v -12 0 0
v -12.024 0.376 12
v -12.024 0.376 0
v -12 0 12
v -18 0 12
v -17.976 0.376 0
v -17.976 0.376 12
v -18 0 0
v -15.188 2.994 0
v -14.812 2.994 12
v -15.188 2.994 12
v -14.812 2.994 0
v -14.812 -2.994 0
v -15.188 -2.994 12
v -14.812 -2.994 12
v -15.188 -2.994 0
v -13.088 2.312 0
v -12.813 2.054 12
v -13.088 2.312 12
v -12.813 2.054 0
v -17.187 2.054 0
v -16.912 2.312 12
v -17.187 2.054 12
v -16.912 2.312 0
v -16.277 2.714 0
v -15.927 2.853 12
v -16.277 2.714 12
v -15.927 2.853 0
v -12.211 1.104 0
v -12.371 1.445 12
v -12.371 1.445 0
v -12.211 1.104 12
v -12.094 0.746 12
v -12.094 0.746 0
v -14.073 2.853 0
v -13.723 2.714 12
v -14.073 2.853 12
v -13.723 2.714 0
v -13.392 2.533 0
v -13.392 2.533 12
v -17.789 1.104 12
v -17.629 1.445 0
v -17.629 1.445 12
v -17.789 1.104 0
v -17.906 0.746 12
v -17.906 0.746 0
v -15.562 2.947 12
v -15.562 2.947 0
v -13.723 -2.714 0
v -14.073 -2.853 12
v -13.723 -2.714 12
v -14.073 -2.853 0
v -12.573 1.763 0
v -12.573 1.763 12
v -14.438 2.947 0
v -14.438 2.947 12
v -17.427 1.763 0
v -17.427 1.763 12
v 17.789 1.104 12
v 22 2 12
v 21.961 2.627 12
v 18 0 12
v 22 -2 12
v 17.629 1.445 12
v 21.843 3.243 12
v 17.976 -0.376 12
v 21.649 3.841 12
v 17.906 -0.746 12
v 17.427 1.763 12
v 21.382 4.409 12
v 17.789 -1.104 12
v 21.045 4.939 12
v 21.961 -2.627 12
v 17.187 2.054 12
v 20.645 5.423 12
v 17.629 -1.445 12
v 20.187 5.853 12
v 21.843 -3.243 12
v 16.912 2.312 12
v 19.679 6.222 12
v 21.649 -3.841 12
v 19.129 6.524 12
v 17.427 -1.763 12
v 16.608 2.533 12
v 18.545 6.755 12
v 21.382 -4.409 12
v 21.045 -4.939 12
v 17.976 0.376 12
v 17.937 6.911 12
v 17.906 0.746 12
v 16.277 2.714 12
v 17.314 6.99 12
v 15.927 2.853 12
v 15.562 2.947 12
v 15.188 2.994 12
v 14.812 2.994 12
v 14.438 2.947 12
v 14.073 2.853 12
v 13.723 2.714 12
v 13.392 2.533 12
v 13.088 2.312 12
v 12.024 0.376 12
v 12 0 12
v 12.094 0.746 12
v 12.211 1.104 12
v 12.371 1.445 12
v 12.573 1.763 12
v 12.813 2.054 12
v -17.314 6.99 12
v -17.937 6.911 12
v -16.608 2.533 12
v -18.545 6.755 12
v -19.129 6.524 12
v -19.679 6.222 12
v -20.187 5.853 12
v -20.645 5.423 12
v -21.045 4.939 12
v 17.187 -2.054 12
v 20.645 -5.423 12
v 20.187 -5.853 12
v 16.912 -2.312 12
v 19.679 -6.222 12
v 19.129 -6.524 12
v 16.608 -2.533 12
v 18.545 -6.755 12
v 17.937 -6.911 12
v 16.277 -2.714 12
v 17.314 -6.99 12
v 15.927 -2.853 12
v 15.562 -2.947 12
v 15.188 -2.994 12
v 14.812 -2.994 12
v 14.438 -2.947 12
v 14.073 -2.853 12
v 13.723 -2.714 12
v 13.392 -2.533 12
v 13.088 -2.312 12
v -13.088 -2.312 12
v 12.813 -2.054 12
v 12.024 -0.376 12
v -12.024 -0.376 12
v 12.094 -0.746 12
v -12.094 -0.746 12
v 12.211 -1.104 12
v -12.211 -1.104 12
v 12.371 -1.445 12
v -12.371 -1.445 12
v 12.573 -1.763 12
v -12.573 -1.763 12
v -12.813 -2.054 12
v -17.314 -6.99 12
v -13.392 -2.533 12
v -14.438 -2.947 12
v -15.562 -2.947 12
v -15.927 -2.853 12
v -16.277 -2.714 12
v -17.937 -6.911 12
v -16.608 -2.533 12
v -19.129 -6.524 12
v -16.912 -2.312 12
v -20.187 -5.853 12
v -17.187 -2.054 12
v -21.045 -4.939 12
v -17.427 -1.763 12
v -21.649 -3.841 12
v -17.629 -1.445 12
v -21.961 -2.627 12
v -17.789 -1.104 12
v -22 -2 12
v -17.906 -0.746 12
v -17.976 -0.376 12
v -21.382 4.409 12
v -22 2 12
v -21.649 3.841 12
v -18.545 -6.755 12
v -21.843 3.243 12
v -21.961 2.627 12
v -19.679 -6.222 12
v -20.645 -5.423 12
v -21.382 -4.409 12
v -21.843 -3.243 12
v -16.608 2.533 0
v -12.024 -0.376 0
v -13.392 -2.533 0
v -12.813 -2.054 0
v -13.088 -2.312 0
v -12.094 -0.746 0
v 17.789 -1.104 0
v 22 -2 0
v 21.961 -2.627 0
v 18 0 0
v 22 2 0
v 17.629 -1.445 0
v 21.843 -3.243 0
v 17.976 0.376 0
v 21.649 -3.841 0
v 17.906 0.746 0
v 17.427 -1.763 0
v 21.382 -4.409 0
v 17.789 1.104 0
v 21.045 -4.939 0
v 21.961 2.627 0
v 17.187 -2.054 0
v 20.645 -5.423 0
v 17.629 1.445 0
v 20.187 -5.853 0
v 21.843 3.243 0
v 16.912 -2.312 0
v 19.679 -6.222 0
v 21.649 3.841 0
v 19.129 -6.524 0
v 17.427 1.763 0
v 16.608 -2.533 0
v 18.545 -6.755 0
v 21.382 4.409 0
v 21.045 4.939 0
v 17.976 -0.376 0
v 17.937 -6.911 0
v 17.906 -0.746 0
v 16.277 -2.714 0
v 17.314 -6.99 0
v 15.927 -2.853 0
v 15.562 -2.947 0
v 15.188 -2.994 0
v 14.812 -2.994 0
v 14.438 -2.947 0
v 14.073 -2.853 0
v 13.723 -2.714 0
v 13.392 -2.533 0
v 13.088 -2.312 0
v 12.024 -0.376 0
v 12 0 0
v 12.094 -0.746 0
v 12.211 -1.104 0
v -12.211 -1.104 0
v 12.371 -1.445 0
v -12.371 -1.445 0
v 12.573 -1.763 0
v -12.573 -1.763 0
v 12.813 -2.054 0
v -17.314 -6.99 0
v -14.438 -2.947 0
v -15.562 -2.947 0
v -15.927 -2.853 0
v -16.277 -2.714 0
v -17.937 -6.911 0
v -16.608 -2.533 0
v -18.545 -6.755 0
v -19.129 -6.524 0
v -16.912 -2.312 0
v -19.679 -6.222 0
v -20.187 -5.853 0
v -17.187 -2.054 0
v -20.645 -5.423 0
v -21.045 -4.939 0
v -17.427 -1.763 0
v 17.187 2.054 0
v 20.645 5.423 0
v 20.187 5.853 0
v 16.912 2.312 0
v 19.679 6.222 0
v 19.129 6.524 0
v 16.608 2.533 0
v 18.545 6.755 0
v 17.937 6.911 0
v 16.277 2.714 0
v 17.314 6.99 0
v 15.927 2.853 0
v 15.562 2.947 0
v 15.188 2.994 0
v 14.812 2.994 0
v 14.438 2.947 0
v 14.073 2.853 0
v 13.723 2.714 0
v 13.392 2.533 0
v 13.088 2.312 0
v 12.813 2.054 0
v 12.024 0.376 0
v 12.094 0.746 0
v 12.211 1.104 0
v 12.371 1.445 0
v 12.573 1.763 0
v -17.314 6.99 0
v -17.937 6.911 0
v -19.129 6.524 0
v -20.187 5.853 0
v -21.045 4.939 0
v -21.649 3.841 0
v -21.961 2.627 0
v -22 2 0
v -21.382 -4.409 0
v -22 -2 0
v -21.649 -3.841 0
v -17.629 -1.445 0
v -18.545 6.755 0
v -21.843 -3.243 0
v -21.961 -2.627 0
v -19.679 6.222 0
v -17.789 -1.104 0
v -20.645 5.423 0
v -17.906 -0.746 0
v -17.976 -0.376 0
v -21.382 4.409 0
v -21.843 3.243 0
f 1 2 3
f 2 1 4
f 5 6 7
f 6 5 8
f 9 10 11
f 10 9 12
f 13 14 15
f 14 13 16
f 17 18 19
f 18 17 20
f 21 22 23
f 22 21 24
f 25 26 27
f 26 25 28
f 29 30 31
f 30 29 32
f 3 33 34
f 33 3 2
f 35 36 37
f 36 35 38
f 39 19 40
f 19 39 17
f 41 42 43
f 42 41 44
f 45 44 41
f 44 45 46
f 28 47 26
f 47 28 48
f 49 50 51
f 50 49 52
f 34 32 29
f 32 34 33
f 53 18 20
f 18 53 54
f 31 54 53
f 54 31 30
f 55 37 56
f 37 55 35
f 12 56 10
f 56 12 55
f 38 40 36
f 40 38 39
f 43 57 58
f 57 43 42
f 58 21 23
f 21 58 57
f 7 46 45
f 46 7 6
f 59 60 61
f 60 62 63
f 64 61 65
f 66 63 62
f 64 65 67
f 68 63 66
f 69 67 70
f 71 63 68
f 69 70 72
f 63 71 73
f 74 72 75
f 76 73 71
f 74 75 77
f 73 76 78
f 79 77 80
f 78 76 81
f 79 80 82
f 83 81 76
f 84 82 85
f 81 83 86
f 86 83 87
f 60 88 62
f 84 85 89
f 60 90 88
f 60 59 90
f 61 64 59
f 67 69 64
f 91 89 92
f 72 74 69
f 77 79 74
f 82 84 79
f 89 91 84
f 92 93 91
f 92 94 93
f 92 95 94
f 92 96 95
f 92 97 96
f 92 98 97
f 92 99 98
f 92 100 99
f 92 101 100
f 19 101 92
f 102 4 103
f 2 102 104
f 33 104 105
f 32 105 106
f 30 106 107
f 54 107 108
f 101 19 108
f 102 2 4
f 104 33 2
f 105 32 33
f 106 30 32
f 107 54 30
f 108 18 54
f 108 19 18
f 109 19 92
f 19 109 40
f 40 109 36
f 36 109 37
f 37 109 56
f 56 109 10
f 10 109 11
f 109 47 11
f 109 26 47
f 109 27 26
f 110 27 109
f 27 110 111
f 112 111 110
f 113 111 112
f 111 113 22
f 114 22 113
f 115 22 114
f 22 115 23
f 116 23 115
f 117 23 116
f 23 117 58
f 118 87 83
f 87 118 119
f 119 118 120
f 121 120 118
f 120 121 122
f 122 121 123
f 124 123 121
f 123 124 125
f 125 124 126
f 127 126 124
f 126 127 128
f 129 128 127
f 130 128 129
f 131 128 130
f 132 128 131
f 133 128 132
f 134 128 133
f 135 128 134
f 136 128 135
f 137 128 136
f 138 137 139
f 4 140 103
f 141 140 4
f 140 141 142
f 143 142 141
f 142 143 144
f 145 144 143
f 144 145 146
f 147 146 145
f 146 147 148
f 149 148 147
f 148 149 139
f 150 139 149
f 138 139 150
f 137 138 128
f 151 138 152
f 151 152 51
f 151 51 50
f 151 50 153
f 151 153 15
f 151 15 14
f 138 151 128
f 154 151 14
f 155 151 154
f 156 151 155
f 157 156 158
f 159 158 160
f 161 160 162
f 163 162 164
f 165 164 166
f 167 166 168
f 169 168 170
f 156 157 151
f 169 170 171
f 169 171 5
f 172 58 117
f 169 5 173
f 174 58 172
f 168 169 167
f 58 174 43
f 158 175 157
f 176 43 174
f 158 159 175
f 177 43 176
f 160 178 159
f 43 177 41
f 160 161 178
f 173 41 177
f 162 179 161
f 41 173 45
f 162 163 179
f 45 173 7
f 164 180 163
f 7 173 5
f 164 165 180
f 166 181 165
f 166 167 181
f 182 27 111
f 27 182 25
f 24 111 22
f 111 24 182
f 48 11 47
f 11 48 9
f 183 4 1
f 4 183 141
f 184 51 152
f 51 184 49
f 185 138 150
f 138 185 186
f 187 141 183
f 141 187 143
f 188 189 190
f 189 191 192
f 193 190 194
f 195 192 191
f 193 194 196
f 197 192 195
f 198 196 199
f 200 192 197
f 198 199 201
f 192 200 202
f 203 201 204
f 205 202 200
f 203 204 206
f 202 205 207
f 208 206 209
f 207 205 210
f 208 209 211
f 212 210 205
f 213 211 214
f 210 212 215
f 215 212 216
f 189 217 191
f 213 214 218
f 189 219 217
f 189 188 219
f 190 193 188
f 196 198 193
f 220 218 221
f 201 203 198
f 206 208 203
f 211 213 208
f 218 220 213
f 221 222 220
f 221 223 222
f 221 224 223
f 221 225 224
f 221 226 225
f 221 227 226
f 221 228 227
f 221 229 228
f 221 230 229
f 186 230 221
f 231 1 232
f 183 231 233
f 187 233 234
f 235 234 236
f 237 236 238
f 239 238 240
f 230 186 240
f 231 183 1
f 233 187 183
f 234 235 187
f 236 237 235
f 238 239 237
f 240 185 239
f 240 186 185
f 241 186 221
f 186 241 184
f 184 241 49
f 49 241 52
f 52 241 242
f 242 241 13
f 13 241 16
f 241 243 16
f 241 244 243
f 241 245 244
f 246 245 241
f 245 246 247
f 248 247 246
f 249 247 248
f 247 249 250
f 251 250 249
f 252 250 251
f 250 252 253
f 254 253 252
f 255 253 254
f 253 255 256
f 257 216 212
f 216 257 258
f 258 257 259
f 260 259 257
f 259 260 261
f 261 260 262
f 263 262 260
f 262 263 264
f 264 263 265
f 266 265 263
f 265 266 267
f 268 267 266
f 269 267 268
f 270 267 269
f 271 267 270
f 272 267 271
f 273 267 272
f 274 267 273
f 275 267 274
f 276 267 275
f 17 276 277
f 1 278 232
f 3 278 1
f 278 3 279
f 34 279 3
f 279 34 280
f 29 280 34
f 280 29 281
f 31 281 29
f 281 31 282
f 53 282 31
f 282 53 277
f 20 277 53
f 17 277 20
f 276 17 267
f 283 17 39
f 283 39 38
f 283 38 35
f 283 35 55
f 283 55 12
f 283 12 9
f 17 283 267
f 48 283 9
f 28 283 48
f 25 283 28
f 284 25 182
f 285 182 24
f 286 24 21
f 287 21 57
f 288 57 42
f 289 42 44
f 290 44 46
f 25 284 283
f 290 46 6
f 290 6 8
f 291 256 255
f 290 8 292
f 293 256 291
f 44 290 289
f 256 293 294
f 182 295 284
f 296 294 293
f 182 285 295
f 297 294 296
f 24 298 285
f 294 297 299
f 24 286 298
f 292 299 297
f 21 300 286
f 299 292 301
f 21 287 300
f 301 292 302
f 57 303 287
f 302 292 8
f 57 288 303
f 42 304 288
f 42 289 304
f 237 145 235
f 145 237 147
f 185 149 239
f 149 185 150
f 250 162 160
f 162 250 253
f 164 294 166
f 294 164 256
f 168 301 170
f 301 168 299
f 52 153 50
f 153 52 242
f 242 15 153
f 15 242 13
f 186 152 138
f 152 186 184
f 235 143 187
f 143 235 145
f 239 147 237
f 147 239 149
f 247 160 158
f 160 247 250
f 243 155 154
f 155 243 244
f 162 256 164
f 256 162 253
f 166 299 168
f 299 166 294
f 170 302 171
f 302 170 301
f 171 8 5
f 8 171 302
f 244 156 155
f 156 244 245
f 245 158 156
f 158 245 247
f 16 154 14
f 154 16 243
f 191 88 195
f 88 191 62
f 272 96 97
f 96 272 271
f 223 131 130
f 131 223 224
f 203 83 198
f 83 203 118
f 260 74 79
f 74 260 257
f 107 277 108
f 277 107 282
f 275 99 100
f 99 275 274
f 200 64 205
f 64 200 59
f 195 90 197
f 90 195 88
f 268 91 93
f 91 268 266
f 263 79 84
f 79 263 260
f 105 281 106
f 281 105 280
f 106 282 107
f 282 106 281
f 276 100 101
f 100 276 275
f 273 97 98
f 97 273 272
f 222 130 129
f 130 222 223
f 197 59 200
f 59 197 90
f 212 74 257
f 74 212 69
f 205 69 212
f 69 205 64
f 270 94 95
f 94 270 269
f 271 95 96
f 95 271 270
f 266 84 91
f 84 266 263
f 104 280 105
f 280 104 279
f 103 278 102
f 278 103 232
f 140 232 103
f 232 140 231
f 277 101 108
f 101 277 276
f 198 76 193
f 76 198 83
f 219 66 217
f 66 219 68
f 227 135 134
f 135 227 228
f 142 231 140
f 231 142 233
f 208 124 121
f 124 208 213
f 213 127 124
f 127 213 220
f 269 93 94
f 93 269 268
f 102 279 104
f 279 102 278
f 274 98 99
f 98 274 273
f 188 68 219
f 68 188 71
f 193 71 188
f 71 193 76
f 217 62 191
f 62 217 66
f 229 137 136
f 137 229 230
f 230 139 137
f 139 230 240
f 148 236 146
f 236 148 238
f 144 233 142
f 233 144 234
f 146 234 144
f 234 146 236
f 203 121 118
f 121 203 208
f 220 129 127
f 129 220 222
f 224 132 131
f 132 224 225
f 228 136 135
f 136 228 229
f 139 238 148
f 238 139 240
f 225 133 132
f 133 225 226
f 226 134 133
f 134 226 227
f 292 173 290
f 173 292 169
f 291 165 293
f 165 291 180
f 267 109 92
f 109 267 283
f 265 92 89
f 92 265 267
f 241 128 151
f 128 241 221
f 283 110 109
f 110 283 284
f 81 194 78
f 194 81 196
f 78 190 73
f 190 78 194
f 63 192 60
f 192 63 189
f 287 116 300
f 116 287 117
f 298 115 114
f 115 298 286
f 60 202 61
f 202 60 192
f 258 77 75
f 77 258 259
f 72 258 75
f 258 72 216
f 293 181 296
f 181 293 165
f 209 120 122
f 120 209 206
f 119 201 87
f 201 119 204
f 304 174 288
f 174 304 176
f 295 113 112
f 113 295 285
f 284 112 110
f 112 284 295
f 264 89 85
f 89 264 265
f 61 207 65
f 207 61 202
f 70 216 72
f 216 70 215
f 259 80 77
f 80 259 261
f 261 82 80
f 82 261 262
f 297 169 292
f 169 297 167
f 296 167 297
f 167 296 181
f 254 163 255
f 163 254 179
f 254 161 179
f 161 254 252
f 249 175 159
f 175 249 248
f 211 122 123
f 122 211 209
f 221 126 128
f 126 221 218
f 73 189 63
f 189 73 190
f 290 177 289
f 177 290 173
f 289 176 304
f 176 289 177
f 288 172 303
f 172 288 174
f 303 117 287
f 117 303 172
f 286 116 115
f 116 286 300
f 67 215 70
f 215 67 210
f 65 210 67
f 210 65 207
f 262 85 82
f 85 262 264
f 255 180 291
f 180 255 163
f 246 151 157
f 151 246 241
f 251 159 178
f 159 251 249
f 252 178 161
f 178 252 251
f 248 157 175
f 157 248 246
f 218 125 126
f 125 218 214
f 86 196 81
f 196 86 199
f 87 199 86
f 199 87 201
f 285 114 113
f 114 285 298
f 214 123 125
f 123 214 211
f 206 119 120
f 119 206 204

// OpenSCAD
$fn = 50;


difference() {
	union() {
		hull() {
			translate(v = [-17.0000000000, 2.0000000000, 0]) {
				cylinder(h = 12, r = 5);
			}
			translate(v = [17.0000000000, 2.0000000000, 0]) {
				cylinder(h = 12, r = 5);
			}
			translate(v = [-17.0000000000, -2.0000000000, 0]) {
				cylinder(h = 12, r = 5);
			}
			translate(v = [17.0000000000, -2.0000000000, 0]) {
				cylinder(h = 12, r = 5);
			}
		}
	}
	union() {
		translate(v = [-15.0000000000, 0.0000000000, 0]) {
			cylinder(h = 12, r = 3.0000000000);
		}
		translate(v = [15.0000000000, 0.0000000000, 0]) {
			cylinder(h = 12, r = 3.0000000000);
		}
		translate(v = [-15.0000000000, 0.0000000000, 0]) {
			cylinder(h = 12, r = 1.5000000000);
		}
		translate(v = [15.0000000000, 0.0000000000, 0]) {
			cylinder(h = 12, r = 1.5000000000);
		}
		translate(v = [-15.0000000000, 0.0000000000, 0]) {
			cylinder(h = 12, r = 1.5000000000);
		}
		translate(v = [15.0000000000, 0.0000000000, 0]) {
			cylinder(h = 12, r = 1.5000000000);
		}
		translate(v = [-15.0000000000, 0.0000000000, 0]) {
			cylinder(h = 12, r = 1.5000000000);
		}
		translate(v = [15.0000000000, 0.0000000000, 0]) {
			cylinder(h = 12, r = 1.5000000000);
		}
	}
}
